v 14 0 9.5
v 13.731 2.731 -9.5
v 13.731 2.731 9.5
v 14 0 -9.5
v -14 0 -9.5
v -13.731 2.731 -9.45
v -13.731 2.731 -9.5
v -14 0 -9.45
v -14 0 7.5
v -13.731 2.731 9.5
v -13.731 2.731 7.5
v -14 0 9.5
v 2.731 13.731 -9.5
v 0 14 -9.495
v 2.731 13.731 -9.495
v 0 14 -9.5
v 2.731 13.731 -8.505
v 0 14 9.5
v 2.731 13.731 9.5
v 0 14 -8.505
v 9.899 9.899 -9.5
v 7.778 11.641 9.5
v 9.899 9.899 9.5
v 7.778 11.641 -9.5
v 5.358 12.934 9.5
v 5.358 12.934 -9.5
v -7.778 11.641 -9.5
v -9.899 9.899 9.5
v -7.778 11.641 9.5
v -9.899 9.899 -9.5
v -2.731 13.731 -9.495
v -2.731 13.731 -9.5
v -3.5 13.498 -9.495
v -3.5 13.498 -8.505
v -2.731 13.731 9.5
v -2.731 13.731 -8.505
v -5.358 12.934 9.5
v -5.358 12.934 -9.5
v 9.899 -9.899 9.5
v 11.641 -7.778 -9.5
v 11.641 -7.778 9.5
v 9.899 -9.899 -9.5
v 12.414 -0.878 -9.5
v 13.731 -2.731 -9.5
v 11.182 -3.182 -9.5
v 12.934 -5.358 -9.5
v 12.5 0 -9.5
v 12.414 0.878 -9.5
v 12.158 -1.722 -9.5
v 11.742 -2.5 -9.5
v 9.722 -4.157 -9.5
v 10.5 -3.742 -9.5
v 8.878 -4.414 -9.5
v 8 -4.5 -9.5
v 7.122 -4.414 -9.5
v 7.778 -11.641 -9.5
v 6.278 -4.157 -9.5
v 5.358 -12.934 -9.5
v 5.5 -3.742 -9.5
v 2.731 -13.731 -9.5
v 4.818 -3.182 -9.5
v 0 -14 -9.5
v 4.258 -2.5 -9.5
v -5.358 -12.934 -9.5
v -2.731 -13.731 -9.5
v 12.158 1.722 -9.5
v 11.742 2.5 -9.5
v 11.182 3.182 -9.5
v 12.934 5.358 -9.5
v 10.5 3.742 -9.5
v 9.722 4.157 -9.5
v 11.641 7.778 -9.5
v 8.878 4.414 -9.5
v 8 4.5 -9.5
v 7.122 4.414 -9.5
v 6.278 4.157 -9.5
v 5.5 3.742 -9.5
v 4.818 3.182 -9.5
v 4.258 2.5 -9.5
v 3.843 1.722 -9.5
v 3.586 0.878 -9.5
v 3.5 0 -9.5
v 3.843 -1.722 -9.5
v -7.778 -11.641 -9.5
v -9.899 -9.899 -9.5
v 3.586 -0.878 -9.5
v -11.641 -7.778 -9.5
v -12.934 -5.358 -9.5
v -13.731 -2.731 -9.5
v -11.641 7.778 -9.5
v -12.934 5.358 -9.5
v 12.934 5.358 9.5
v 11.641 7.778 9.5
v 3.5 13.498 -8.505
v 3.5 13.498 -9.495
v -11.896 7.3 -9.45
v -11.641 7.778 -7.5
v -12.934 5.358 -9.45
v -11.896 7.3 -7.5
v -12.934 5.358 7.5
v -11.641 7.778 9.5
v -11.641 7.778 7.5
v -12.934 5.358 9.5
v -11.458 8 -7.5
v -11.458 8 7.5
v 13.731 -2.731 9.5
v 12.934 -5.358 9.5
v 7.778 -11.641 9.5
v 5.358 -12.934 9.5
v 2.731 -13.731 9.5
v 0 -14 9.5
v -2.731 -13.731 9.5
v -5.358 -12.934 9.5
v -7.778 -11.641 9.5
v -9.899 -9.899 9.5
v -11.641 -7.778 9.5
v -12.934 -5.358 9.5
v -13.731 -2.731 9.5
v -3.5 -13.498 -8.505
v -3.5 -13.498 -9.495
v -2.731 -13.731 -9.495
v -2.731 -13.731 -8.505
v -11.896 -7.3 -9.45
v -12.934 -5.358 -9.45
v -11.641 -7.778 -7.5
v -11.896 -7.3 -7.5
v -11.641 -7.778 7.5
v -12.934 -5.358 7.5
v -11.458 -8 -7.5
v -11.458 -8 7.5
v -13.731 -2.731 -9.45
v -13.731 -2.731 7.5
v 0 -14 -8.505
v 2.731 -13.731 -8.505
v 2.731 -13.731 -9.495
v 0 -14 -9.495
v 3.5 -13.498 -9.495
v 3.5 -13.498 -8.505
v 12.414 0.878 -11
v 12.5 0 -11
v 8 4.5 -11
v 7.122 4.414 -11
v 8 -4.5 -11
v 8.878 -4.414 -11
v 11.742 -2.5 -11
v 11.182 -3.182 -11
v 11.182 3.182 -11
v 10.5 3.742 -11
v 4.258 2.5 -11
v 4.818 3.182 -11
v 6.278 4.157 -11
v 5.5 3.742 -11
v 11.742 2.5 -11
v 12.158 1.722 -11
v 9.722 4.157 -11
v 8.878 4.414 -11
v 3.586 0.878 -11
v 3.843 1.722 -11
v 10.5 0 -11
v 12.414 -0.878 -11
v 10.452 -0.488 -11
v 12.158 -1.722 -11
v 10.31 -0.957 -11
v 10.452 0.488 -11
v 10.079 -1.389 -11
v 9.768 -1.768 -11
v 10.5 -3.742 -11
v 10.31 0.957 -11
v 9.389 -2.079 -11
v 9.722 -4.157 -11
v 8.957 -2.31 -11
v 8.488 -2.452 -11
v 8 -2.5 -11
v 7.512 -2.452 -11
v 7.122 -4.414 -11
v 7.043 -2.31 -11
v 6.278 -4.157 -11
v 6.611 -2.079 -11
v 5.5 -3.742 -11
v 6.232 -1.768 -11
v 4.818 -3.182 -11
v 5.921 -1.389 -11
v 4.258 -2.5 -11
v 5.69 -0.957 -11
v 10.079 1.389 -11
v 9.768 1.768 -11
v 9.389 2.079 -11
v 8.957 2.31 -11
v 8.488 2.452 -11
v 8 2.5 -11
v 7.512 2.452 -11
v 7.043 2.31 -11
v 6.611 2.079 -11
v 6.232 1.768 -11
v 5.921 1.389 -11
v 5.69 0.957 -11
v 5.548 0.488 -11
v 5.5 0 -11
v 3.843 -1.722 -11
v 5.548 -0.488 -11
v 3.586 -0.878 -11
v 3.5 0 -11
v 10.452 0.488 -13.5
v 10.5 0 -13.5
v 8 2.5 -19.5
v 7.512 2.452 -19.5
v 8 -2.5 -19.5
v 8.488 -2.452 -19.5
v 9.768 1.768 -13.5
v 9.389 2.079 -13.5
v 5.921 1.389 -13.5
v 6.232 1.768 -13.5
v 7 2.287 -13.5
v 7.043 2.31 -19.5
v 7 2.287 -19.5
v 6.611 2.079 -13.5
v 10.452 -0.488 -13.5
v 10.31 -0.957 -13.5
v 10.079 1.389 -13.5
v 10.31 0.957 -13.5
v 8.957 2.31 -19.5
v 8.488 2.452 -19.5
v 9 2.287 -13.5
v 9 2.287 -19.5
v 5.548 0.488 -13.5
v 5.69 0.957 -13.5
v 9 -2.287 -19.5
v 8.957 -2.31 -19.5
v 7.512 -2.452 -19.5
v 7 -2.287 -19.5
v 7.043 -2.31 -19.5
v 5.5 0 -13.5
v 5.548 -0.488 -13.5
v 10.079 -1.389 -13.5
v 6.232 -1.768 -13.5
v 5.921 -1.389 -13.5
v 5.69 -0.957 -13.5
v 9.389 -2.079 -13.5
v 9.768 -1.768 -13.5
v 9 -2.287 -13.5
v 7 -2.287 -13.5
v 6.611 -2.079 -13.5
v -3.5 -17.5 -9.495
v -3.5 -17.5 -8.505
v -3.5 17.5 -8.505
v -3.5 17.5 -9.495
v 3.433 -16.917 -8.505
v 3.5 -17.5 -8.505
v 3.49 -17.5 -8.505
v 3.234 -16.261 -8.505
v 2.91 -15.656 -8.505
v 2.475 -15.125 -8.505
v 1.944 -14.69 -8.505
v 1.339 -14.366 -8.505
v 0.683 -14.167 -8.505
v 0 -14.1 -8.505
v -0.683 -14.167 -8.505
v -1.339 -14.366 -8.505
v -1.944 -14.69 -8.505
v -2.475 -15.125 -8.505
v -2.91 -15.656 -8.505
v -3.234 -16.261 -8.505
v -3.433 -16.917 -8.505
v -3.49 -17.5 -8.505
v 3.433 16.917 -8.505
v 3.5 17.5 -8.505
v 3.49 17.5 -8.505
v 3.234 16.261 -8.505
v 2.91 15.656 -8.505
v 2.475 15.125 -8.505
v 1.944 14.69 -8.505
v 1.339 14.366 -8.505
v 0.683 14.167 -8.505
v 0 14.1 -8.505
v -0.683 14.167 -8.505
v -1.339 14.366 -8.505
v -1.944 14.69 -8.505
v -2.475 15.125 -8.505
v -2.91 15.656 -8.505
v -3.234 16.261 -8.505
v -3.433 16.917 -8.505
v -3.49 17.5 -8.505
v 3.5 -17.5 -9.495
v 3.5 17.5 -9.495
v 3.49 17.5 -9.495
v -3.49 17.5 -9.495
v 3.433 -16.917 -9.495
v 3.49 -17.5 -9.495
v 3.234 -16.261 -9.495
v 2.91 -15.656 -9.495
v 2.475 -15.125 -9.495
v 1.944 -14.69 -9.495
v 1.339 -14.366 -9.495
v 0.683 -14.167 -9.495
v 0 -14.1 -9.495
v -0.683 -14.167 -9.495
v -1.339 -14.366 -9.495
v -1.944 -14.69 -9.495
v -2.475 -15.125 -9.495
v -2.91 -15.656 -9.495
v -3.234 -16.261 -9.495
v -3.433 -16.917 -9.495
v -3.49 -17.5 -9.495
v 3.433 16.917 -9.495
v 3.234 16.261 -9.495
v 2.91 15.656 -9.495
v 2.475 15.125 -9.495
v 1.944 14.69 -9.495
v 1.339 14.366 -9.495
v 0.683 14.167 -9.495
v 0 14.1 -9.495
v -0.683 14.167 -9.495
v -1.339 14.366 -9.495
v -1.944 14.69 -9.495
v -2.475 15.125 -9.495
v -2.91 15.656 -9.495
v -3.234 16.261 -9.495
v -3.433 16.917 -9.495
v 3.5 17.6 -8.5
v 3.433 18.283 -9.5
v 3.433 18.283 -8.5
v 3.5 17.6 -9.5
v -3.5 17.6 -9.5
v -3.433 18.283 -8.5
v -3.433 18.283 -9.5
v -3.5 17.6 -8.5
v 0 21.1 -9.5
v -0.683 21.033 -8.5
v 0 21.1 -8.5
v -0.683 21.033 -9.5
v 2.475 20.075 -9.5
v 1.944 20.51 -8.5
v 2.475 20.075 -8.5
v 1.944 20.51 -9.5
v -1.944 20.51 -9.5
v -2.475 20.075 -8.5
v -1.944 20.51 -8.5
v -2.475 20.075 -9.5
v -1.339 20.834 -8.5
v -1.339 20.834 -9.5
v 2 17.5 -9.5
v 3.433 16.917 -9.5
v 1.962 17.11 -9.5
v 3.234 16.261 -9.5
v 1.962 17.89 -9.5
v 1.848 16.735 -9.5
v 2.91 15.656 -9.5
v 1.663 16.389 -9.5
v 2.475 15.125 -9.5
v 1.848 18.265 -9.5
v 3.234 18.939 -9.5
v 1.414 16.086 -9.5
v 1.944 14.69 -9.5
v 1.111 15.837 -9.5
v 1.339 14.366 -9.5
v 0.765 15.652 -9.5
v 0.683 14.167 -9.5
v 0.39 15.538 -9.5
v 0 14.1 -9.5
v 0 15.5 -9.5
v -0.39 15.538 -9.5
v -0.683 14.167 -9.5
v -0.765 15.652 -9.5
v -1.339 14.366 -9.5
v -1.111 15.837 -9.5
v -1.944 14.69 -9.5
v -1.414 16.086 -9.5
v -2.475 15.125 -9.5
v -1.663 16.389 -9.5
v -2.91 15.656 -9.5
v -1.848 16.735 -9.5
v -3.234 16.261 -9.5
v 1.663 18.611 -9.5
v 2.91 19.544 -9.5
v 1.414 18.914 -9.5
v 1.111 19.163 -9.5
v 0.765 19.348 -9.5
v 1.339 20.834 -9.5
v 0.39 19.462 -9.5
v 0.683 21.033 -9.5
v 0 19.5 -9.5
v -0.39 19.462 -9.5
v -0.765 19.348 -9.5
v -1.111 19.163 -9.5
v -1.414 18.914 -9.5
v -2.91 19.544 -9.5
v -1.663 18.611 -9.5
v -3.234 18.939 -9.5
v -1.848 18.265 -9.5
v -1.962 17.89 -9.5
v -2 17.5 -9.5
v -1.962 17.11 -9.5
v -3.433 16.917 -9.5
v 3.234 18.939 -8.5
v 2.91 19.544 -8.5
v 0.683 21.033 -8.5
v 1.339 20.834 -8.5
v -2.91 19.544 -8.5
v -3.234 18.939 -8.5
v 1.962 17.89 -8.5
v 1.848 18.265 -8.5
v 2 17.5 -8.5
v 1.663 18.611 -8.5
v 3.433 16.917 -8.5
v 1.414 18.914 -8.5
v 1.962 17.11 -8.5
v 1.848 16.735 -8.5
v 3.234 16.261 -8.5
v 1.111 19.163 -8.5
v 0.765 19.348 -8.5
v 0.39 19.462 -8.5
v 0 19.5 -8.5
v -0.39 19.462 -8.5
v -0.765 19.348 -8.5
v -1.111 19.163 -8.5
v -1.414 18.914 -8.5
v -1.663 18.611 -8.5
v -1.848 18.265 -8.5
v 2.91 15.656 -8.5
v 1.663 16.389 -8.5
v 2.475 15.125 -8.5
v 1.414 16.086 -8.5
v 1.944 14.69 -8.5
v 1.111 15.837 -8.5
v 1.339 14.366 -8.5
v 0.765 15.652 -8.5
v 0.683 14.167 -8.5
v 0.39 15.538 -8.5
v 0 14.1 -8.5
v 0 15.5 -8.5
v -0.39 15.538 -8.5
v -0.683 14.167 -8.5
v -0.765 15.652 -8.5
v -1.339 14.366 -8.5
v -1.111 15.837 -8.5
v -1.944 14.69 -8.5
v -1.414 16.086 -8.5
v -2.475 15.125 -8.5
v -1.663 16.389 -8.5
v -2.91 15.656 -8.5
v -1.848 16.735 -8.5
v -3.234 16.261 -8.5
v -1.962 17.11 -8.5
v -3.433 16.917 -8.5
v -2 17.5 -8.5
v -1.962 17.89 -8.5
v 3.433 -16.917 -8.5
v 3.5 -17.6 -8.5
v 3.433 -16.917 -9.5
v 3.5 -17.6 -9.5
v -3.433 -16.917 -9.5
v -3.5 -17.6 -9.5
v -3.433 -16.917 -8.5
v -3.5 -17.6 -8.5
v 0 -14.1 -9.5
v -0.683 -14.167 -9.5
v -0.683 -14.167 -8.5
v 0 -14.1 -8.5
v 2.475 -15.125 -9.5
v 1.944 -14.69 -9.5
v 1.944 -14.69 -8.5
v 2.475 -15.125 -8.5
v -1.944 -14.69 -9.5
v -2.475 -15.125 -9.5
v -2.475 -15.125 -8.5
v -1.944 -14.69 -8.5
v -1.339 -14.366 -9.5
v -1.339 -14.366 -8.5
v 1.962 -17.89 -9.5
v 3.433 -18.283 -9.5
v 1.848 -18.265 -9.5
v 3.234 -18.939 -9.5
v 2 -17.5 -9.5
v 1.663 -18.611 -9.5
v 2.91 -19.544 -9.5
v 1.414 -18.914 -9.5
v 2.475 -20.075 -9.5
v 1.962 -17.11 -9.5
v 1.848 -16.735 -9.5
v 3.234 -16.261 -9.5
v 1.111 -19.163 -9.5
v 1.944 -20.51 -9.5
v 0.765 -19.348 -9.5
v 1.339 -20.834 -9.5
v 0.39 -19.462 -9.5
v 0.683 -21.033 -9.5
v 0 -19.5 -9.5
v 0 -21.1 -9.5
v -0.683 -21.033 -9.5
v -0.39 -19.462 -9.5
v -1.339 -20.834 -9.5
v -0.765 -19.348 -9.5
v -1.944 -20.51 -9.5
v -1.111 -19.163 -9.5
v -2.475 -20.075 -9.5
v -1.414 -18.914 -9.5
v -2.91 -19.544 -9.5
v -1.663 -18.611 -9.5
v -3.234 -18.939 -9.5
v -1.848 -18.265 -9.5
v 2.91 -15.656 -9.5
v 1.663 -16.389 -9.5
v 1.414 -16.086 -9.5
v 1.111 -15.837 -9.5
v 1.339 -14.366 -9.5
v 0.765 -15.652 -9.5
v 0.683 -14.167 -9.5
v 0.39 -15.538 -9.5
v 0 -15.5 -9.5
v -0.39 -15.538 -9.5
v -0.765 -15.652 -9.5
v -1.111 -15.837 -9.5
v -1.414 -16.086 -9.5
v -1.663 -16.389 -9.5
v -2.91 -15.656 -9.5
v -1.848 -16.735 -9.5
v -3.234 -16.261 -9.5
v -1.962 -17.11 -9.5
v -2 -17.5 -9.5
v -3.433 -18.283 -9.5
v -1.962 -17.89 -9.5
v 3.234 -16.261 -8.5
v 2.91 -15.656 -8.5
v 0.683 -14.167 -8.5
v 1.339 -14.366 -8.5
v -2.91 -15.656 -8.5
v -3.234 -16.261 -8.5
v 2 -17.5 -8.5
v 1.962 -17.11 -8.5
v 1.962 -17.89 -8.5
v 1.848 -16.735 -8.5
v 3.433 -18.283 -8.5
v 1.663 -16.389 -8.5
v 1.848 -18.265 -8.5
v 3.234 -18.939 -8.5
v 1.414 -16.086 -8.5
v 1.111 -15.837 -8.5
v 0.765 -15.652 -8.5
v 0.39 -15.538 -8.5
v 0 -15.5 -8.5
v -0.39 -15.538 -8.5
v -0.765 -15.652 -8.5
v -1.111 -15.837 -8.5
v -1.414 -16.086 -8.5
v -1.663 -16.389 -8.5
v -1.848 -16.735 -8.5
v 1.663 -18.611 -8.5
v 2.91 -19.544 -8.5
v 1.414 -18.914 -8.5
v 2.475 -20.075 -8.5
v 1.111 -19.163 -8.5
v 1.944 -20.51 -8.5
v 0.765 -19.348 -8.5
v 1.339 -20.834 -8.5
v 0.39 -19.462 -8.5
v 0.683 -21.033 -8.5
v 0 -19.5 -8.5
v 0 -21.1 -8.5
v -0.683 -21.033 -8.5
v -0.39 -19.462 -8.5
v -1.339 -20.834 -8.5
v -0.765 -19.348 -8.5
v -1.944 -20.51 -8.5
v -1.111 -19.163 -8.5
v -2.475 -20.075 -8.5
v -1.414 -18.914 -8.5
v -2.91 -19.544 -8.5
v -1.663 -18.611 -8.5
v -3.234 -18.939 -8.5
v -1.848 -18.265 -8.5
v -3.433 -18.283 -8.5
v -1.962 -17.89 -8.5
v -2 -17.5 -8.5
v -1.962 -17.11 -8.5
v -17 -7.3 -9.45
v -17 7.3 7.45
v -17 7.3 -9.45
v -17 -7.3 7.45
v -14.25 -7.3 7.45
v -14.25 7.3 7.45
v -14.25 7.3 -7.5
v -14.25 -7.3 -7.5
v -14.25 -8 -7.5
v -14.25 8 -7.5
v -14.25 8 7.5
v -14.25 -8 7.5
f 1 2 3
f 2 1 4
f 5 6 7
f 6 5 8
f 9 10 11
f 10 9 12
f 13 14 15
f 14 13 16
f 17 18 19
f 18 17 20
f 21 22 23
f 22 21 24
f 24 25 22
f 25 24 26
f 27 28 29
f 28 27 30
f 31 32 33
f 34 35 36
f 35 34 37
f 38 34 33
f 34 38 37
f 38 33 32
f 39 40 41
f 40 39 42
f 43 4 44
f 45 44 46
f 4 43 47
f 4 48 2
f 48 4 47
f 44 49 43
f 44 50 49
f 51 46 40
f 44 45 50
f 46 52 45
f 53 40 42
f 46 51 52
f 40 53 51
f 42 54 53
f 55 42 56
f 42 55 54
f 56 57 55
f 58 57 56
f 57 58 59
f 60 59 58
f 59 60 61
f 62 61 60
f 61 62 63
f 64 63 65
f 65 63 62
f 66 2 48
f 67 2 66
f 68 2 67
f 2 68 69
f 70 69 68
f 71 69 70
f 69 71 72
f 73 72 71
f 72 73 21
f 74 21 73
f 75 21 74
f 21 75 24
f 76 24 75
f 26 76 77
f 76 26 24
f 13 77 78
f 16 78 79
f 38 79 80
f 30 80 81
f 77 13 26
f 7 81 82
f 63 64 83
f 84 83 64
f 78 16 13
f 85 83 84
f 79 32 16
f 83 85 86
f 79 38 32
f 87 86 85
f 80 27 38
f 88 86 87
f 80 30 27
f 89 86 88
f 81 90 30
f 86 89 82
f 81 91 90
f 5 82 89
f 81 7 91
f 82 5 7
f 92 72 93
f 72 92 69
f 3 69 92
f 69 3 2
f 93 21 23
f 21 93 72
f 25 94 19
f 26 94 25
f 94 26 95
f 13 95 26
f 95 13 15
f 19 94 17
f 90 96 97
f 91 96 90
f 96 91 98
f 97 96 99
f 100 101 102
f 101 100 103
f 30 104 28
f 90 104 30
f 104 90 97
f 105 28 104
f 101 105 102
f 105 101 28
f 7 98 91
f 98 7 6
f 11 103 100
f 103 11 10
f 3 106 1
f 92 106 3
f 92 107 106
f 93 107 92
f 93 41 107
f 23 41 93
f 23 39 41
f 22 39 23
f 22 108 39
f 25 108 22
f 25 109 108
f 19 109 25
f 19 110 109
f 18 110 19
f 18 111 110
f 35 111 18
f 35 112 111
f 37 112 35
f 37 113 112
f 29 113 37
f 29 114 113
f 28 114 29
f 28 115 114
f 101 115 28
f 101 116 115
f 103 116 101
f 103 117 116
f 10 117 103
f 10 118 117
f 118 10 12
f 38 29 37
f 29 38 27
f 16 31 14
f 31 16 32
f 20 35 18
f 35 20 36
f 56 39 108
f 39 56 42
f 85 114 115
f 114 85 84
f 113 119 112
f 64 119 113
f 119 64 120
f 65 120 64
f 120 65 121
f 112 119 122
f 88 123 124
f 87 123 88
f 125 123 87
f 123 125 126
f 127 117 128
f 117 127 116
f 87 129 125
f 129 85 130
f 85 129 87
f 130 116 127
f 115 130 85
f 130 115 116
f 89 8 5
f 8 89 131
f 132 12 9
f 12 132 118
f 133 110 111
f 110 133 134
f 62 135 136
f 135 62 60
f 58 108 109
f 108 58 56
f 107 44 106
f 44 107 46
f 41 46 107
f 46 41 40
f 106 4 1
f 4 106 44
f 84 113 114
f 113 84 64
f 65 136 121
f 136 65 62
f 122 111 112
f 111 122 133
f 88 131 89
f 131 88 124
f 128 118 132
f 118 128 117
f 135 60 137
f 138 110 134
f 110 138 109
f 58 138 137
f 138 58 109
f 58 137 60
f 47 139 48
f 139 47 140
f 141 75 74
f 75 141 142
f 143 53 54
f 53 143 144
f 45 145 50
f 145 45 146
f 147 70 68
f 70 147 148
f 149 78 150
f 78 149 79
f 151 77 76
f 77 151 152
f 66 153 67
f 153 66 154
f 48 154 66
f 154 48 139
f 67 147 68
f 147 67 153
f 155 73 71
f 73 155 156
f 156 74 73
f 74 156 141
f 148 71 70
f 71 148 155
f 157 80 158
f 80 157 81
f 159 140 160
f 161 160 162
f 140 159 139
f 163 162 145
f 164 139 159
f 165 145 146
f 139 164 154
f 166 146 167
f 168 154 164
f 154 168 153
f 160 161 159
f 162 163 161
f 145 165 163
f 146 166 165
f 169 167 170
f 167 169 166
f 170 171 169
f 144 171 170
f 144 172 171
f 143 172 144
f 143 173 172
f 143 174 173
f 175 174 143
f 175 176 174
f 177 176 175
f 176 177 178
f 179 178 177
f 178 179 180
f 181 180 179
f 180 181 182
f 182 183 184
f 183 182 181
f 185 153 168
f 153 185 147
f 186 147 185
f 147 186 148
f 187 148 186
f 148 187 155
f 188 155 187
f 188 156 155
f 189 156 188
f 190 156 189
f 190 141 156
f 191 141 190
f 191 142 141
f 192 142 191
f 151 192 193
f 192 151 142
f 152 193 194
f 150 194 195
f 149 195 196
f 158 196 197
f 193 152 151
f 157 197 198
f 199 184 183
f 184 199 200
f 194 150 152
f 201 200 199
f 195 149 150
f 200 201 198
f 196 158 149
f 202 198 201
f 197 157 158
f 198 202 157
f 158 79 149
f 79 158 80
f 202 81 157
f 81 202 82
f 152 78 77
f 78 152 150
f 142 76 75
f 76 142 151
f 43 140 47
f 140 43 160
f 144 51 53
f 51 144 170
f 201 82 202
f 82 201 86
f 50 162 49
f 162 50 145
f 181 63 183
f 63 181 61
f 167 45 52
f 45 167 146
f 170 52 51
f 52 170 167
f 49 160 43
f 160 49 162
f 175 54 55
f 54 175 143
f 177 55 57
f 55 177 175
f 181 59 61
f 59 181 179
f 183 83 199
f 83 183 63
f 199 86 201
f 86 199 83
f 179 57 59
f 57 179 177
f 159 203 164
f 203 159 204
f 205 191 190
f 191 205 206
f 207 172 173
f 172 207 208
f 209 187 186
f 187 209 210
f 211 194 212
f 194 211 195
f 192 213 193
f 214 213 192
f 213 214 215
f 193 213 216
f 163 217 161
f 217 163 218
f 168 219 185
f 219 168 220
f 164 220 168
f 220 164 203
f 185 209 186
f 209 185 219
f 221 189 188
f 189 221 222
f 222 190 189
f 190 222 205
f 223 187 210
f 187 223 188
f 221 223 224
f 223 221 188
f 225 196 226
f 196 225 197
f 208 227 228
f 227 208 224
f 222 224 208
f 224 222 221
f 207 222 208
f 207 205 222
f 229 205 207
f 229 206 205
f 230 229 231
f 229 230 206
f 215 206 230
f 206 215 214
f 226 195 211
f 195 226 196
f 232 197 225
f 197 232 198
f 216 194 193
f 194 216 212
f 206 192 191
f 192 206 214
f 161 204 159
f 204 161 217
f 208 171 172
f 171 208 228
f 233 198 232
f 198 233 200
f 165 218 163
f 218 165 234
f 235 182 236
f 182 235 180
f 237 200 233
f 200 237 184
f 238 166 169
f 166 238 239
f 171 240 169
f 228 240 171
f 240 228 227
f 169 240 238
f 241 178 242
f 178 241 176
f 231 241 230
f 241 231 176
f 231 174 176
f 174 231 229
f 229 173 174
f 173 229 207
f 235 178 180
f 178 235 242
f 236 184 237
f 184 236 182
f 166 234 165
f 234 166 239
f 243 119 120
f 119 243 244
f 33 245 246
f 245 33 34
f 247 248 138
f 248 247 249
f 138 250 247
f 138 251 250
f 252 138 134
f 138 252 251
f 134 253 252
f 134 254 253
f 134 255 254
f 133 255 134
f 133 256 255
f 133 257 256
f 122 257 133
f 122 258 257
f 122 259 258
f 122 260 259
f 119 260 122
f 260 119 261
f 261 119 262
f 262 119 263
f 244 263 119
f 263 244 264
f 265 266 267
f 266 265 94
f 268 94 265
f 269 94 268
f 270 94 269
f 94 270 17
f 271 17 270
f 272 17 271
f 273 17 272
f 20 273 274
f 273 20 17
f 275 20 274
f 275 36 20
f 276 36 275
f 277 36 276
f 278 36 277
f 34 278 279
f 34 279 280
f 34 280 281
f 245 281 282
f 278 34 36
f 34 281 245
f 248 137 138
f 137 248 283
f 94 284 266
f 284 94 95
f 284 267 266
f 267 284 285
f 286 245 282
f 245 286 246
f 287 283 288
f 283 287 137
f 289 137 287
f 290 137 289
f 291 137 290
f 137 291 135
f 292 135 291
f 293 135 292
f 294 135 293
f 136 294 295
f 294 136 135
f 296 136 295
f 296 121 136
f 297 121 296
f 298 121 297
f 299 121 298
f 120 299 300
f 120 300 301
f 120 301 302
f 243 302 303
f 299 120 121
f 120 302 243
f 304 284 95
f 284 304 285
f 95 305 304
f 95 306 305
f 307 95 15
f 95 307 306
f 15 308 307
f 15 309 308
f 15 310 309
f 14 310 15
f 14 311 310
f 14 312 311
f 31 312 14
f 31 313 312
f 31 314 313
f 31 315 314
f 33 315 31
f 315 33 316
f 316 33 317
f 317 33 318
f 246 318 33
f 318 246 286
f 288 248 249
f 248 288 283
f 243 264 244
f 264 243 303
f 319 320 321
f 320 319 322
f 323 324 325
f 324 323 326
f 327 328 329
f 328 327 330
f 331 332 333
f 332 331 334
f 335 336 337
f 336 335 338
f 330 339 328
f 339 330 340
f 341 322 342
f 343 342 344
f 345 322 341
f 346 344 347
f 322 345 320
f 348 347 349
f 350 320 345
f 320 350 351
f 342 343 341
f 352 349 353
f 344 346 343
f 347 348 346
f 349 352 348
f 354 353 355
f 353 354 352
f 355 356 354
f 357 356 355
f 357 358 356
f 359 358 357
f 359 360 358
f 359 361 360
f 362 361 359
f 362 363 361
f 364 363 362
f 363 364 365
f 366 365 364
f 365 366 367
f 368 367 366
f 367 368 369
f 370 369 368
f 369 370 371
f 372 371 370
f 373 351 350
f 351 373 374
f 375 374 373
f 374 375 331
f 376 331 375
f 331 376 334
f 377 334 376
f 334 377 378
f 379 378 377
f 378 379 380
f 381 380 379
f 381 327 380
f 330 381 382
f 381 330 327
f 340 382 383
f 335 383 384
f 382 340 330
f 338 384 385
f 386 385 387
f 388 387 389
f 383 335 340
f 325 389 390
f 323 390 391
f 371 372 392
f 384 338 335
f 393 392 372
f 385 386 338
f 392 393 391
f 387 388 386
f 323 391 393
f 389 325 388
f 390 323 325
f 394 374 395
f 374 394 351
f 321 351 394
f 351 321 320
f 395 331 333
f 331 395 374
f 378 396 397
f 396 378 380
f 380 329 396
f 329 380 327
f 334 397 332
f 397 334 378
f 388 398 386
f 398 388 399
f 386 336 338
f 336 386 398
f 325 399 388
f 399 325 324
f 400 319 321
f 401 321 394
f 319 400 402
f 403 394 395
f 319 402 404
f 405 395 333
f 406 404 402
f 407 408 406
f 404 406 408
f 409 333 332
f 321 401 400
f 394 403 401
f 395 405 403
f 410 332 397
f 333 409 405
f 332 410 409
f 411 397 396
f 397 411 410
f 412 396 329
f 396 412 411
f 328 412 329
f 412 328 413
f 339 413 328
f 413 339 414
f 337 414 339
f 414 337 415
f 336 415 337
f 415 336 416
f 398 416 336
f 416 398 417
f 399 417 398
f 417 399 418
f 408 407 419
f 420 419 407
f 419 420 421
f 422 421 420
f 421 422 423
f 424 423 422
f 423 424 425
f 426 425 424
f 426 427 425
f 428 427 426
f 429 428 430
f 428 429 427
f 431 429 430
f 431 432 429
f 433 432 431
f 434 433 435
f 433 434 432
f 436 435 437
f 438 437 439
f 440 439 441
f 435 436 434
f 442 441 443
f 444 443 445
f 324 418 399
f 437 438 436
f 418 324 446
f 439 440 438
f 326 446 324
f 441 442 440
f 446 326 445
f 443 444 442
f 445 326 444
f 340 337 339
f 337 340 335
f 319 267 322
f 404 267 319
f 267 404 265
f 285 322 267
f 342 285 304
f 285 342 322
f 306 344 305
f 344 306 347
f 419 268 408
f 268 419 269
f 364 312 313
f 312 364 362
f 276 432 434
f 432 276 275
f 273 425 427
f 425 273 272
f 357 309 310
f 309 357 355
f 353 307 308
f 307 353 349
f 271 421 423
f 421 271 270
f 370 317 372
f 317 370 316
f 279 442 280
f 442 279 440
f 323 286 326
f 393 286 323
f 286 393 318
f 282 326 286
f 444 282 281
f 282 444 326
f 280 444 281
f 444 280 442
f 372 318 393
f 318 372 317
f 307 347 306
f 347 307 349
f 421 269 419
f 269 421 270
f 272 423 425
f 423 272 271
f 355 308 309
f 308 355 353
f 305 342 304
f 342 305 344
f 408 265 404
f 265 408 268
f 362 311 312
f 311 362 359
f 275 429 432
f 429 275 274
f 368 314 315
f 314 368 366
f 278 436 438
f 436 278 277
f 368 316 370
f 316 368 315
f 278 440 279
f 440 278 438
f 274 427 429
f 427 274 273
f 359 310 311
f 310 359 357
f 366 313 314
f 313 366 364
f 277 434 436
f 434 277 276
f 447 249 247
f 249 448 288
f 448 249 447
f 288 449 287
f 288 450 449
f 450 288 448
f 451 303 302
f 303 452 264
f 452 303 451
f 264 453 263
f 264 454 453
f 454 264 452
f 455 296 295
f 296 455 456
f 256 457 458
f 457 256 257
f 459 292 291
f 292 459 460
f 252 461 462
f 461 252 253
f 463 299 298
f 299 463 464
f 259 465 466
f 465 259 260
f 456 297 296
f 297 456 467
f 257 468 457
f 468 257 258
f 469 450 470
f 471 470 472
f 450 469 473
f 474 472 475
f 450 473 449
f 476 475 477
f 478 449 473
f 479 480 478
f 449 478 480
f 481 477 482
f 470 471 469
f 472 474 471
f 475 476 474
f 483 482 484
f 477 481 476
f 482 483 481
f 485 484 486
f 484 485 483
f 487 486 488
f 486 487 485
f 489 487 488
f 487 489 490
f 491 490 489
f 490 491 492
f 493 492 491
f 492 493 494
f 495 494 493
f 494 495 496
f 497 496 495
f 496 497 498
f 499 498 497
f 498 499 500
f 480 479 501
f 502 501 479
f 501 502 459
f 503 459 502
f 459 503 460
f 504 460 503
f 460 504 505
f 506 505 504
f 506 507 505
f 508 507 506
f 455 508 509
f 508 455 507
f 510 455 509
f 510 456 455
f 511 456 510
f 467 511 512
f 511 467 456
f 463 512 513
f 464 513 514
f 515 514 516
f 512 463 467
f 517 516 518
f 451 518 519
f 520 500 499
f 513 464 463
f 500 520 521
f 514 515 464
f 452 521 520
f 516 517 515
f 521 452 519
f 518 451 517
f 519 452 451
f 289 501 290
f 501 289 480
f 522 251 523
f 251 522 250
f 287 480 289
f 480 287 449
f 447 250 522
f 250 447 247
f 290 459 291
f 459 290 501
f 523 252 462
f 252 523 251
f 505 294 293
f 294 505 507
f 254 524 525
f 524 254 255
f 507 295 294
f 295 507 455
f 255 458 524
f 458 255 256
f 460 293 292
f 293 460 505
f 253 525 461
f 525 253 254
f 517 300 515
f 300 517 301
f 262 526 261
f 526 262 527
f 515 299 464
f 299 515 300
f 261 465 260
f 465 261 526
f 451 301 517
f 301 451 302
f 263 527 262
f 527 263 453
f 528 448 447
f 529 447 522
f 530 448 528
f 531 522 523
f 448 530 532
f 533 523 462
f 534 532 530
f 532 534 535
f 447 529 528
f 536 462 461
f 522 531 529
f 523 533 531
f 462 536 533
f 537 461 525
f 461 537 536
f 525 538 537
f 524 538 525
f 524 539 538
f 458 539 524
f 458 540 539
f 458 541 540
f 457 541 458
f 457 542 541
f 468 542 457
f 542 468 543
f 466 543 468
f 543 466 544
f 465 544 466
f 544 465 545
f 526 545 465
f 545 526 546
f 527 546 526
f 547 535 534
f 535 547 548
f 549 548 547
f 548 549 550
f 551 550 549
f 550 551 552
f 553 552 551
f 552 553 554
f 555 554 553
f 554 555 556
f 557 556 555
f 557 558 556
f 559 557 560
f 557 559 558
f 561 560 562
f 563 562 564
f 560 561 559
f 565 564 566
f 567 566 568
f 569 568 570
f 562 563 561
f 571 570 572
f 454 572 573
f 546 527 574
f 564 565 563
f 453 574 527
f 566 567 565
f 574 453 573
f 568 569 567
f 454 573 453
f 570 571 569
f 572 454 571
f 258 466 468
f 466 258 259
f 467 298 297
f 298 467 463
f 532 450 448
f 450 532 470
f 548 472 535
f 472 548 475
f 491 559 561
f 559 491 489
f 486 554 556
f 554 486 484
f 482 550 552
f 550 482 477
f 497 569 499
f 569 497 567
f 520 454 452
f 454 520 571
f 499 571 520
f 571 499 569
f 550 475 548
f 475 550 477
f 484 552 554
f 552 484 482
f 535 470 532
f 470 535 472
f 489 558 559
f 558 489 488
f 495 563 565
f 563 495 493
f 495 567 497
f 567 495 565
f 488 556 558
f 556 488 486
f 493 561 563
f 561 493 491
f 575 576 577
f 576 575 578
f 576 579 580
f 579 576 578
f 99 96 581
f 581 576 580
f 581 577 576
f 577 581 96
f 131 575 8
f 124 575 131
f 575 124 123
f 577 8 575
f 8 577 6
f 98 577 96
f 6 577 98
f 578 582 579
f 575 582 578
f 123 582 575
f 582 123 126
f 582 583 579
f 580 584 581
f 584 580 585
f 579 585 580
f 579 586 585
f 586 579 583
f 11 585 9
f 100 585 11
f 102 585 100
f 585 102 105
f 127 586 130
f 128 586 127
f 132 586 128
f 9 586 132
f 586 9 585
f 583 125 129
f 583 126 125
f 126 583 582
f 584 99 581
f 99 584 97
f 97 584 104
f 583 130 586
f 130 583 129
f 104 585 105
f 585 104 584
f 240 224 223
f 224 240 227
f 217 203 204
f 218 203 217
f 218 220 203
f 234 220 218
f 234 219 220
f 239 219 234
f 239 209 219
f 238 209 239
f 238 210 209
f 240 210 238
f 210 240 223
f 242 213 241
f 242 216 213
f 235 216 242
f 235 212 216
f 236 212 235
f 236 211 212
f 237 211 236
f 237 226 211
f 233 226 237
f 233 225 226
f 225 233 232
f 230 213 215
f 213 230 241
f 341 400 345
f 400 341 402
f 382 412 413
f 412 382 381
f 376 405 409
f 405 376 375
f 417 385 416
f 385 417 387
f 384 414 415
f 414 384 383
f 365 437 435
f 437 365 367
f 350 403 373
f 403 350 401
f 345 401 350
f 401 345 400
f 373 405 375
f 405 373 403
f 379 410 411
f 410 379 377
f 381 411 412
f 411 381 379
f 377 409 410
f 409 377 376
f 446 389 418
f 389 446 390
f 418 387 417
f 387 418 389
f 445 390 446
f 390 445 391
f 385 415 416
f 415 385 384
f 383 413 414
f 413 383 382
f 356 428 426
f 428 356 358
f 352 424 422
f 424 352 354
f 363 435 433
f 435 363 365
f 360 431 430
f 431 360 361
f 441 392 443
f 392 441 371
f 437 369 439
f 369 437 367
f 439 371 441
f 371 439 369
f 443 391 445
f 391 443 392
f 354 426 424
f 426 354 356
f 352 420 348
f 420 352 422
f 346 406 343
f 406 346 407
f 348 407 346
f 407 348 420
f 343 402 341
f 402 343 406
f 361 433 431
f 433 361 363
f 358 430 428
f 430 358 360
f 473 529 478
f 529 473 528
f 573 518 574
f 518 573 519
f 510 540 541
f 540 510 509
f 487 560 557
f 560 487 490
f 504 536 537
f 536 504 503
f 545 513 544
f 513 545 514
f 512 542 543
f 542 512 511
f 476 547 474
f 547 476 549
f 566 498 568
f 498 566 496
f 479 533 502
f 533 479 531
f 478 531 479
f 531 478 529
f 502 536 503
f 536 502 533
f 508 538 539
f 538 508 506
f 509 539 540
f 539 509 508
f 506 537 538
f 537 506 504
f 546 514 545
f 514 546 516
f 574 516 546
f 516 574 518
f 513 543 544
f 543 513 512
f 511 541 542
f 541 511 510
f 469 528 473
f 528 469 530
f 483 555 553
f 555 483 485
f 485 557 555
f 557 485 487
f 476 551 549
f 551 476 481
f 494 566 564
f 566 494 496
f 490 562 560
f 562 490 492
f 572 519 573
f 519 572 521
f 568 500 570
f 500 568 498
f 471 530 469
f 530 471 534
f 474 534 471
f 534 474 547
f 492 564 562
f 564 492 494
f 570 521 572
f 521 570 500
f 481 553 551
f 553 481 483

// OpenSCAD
// translate([0,-30,0])
// StepMotor28BYJ();

// translate([0,30,0])
StepMotor28BYJ();


module StepMotor28BYJ() {
  difference() {
    union(){
      color("gray") cylinder(h = 19, r = 14, center = true, $fn = 32);
      color("gray") translate([8,0,-1.5])	cylinder(h = 19, r = 4.5, center = true, $fn = 32);
      color("gold",.75) translate([8,0,-10])	cylinder(h = 19, r = 2.5, center = true, $fn = 32);

      color("Silver") translate([0,0,-9]) cube([7,35,0.99], center = true);				
      color("Silver") translate([0,17.6,-9])	cylinder(h = 1, r = 3.5, center = true, $fn = 32);

      color("Silver") translate([0,-17.6,-9])	cylinder(h = 1, r = 3.5, center = true, $fn = 32);

      color("blue") translate([-3,0,-1]) cube([28,14.6,16.9], center = true);
      color("blue") translate([-2,0,0])  cube([24.5,16,15], center = true);
    }

    // handle
    color("red") translate([11,0,-16.55]) cube([4,5,6.1], center = true);
    color("red") translate([5,0,-16.55]) cube([4,5,6.1], center = true);

    // screw holes
    color("red") translate([0,17.5,-9])	cylinder(h = 2, r = 2, center = true, $fn = 32);
    color("red") translate([0,-17.5,-9])	cylinder(h = 2, r = 2, center = true, $fn = 32);
  }
}
